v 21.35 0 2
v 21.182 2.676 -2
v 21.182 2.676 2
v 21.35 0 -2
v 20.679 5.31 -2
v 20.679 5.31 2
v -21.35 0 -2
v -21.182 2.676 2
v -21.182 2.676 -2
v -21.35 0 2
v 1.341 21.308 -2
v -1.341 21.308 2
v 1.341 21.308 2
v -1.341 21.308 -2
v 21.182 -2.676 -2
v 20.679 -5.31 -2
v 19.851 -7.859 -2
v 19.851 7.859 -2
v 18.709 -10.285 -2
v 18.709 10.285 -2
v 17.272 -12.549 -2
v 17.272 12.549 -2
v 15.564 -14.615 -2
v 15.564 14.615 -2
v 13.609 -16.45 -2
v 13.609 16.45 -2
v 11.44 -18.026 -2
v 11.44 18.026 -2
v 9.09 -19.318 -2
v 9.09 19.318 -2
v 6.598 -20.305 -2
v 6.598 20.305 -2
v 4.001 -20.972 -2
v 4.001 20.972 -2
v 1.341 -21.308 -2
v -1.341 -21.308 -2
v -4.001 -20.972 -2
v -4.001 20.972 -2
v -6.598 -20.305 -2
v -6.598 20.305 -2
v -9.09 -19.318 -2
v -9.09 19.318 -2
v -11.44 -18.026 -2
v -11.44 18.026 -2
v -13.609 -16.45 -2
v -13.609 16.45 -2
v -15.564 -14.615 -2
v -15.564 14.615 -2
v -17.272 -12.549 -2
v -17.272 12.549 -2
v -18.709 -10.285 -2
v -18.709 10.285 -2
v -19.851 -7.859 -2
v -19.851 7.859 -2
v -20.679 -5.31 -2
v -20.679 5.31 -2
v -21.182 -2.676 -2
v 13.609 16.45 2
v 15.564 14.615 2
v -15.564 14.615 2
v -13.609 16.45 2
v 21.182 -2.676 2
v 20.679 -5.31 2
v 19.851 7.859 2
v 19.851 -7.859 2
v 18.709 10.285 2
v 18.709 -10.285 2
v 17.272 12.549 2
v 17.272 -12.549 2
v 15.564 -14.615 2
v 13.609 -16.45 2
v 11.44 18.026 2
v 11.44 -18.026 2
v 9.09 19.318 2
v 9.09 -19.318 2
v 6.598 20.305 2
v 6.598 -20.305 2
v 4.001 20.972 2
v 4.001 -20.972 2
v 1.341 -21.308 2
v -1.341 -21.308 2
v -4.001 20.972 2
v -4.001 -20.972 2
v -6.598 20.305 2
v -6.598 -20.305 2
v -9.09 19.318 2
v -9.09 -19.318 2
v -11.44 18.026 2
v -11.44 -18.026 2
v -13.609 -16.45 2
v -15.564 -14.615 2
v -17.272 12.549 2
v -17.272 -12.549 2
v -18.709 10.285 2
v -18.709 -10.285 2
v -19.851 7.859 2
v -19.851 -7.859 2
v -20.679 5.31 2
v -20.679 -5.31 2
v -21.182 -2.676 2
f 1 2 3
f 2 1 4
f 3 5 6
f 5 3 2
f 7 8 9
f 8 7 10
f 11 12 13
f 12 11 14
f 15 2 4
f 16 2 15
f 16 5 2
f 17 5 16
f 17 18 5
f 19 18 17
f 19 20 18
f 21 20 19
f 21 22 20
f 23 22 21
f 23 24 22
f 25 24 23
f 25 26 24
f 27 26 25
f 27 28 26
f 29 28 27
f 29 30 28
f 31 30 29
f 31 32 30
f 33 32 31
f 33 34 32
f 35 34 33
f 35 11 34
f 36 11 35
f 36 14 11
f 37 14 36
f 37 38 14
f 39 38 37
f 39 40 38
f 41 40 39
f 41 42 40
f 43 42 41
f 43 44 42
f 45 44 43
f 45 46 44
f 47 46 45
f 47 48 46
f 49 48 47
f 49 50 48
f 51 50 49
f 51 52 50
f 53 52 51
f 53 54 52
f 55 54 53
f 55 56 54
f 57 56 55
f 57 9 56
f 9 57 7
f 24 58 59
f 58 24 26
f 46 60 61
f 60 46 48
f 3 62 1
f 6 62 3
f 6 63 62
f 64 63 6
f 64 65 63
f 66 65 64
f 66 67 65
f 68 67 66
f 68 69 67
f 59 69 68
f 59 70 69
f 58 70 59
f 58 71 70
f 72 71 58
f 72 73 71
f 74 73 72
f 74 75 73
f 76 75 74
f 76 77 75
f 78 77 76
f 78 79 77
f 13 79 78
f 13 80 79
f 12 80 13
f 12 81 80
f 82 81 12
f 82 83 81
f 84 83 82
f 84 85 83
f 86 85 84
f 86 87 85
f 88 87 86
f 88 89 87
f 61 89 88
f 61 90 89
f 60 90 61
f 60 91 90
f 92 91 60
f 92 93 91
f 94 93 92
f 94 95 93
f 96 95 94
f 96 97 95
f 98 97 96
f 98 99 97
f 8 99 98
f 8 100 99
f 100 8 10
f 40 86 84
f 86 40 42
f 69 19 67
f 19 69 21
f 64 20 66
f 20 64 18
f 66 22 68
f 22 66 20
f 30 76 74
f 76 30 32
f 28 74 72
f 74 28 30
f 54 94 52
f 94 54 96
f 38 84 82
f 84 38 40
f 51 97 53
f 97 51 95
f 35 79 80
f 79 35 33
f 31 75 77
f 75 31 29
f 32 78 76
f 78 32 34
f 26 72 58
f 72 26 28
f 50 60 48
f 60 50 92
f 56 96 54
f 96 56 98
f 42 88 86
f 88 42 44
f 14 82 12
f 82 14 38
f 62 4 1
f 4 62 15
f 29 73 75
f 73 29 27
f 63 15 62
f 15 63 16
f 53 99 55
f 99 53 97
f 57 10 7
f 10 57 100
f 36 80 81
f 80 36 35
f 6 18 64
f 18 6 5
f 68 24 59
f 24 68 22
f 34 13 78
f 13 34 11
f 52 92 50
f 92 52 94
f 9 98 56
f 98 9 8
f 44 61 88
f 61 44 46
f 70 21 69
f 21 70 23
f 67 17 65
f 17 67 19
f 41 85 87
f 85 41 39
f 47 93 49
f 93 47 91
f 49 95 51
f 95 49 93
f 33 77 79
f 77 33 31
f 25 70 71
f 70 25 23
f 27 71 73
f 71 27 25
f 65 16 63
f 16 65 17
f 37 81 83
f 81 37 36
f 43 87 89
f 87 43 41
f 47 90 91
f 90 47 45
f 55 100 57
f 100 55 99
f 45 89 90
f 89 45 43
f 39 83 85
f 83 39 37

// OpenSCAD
$fn = 50;


difference() {
	union() {
		translate(v = [0, 0, -2.0000000000]) {
			cylinder(h = 4, r = 21.3500000000);
		}
	}
	union() {
		translate(v = [0, 0, -100.0000000000]) {
			cylinder(h = 200, r = 0);
		}
	}
}
